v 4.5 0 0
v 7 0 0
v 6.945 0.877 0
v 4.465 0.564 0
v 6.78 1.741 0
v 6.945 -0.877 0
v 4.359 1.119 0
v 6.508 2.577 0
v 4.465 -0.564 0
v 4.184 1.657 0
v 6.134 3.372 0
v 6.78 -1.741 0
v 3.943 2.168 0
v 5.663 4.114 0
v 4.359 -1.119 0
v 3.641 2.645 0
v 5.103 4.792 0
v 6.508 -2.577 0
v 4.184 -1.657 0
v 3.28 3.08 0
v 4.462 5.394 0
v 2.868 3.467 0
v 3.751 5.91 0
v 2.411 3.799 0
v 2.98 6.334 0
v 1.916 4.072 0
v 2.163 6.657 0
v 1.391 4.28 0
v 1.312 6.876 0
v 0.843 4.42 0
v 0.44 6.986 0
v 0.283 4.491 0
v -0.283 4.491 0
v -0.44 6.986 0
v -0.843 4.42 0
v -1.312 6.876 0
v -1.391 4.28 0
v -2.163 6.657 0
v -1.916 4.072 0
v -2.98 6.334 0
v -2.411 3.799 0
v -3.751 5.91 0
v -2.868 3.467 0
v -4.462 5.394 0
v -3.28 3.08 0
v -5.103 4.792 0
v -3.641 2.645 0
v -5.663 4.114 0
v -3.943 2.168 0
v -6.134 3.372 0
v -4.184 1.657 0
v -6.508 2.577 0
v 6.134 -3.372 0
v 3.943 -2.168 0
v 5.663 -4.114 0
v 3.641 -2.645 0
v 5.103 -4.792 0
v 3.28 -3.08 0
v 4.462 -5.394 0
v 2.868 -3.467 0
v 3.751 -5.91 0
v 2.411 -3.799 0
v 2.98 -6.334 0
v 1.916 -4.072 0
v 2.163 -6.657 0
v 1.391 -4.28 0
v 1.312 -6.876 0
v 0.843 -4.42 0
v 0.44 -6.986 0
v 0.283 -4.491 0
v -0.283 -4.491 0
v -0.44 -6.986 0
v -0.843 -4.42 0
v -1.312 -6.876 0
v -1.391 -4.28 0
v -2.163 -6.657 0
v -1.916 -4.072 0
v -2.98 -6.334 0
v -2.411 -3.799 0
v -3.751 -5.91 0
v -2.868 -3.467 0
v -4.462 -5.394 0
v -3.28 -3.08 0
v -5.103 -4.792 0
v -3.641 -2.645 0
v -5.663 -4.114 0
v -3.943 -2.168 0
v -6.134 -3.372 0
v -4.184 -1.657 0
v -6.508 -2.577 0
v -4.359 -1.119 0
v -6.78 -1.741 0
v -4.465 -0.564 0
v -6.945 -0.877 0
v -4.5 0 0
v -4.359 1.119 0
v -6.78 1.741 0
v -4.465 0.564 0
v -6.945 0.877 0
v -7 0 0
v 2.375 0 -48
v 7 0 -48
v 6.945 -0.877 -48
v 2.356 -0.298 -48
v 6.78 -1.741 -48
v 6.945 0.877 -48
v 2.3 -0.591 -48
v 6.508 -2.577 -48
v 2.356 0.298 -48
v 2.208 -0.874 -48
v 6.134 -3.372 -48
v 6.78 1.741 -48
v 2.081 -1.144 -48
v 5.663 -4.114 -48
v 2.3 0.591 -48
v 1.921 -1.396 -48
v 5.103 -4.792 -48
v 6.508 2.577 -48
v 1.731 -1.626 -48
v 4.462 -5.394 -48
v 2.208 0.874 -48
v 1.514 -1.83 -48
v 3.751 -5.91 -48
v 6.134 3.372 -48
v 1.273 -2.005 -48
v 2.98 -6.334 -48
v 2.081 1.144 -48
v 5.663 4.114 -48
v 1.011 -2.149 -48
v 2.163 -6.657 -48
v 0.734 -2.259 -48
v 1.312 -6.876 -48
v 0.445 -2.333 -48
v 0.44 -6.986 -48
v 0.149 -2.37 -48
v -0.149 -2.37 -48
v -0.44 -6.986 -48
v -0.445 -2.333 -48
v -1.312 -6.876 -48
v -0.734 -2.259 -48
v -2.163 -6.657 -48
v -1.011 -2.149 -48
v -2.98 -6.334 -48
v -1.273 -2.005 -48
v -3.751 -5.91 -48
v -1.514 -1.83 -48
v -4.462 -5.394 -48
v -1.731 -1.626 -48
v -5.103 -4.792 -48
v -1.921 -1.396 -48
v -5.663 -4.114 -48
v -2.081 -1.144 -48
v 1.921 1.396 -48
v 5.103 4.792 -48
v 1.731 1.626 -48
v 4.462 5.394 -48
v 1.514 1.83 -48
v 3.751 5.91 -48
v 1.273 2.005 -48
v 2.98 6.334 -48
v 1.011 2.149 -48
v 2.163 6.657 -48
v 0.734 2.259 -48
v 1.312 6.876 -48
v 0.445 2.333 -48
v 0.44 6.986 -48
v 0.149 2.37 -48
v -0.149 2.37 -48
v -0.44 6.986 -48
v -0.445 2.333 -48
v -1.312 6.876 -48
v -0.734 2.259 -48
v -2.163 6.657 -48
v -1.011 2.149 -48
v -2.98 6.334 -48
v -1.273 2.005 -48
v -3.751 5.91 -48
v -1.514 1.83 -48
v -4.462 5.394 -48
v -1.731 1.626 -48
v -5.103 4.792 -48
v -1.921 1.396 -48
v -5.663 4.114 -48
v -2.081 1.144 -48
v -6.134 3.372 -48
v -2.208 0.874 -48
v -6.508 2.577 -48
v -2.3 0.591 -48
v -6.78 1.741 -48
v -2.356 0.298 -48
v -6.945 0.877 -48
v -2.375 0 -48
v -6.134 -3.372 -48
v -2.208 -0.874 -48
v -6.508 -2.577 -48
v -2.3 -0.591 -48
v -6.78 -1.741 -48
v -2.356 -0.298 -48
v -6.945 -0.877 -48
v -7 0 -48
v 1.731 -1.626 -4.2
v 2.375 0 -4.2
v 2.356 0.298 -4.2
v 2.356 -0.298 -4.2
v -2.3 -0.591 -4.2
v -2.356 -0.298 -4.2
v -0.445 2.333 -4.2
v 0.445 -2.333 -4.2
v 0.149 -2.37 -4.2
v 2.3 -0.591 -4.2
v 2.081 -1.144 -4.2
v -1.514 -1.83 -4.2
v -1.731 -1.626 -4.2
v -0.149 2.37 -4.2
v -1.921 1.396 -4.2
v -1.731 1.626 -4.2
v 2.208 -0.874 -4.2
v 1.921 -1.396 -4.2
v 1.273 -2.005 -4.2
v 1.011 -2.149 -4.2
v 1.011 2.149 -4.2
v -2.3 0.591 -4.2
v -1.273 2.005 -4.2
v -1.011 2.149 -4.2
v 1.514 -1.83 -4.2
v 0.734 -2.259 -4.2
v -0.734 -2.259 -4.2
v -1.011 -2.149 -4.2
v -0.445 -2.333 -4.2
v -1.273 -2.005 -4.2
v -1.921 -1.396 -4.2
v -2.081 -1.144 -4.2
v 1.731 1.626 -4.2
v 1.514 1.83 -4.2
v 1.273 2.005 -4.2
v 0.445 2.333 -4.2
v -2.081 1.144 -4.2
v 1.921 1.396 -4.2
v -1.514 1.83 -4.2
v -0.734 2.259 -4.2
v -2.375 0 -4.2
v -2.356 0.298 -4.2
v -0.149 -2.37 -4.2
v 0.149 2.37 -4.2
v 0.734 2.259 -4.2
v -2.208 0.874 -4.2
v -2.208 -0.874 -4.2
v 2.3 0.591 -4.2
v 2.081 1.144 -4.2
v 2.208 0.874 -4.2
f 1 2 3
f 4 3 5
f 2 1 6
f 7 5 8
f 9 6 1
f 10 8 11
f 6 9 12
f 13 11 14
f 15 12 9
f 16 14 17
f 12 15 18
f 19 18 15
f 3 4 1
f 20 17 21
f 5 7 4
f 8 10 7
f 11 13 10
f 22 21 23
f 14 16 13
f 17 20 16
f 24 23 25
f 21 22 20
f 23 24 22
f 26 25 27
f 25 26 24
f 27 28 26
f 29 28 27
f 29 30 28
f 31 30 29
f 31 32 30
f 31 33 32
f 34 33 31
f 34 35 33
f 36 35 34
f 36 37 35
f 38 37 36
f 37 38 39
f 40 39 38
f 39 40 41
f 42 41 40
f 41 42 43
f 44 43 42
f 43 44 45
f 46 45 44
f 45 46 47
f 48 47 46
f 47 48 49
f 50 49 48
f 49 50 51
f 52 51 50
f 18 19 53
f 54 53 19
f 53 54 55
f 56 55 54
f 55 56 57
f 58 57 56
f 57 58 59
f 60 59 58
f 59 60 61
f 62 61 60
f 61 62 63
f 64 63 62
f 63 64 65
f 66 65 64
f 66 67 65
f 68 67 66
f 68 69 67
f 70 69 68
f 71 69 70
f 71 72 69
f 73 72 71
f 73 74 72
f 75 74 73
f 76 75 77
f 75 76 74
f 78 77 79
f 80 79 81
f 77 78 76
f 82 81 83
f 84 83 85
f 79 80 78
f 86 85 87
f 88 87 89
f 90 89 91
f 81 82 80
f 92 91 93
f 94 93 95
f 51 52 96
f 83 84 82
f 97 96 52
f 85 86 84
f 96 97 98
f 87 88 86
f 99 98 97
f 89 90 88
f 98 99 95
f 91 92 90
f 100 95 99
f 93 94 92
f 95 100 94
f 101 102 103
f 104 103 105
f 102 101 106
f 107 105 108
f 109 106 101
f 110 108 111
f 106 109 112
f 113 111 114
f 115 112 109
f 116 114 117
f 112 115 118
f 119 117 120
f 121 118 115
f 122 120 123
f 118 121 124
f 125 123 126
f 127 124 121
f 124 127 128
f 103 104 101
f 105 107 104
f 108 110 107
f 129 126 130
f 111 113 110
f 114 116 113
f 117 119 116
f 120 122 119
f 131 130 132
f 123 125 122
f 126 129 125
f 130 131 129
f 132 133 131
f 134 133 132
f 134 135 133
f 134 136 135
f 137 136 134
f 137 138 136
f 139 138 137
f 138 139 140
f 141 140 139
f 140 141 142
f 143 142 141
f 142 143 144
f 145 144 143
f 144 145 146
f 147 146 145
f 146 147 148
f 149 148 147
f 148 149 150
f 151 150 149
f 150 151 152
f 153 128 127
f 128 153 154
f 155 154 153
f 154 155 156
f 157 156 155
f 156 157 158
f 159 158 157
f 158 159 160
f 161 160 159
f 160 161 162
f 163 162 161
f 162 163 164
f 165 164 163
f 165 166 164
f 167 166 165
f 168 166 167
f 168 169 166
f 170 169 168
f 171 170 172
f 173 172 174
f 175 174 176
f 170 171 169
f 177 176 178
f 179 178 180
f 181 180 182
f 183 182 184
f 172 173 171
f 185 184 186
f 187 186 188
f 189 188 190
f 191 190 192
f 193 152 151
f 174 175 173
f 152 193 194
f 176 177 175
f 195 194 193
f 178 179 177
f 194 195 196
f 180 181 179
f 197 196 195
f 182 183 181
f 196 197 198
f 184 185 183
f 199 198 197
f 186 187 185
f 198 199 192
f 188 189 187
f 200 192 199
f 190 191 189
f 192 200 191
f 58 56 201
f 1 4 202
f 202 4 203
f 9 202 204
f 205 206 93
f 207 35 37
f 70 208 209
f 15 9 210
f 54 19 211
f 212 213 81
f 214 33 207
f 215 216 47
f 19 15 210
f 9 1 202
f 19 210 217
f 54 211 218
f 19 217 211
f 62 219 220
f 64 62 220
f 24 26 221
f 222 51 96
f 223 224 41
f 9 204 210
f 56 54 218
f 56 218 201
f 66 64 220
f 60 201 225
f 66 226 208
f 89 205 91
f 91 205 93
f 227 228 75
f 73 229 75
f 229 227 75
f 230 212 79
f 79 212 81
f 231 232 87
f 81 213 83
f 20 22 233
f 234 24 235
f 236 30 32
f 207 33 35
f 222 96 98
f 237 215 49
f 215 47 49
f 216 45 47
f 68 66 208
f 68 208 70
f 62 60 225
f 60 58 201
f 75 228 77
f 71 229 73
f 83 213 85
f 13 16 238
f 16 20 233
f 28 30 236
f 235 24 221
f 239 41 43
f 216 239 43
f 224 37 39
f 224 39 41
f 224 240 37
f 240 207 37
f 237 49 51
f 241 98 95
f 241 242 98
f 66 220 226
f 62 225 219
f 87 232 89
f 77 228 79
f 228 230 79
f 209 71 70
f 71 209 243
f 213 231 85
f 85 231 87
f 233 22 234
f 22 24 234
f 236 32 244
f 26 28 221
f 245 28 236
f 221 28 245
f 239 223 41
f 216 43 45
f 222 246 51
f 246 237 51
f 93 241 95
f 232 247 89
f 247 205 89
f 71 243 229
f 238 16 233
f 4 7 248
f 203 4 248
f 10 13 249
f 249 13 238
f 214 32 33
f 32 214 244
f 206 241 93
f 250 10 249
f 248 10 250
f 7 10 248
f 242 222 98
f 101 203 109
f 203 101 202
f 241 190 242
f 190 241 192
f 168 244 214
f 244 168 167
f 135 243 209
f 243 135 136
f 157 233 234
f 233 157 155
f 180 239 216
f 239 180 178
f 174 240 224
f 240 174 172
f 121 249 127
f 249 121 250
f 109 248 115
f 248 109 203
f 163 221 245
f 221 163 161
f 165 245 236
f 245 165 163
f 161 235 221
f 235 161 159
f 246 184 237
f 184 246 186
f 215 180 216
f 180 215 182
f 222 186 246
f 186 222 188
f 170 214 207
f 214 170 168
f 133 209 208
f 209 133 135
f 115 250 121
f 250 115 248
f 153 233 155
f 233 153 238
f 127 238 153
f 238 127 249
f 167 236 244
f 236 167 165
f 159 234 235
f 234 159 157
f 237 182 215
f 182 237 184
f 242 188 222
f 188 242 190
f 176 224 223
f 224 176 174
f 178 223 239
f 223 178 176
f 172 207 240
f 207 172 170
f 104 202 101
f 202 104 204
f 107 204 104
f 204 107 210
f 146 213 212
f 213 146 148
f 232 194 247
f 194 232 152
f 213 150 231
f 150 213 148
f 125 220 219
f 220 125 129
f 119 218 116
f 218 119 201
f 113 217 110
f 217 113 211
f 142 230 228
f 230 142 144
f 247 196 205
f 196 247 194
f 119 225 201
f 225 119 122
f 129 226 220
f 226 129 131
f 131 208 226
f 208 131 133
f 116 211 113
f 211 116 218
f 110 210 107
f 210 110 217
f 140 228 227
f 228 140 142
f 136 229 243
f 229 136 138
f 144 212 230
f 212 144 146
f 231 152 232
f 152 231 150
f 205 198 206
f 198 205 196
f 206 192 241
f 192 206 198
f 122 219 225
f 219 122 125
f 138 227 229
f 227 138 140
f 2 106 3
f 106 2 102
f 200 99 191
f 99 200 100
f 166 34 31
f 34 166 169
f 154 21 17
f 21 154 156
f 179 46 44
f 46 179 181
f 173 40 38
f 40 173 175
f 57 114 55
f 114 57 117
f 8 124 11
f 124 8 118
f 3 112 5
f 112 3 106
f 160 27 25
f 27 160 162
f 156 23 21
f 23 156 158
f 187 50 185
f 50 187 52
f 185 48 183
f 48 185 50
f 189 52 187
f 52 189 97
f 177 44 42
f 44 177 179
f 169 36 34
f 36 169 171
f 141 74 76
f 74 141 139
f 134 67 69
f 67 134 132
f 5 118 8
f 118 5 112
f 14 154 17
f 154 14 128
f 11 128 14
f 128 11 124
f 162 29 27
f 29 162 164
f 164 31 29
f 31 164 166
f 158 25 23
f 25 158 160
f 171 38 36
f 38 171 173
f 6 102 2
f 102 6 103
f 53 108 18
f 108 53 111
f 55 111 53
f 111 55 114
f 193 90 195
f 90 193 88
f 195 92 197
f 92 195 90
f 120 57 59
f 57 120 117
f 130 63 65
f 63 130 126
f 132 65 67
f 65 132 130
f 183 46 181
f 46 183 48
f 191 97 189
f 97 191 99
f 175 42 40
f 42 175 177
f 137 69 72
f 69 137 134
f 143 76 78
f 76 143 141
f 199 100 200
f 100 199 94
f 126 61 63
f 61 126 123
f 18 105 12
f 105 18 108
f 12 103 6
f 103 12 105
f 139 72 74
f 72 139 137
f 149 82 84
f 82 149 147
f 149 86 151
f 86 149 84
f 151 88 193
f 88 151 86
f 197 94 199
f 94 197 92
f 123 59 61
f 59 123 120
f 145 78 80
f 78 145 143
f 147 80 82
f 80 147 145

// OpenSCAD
$fn = 50;


difference() {
	union() {
		translate(v = [0, 0, -48.0000000000]) {
			cylinder(h = 48, r = 7.0000000000);
		}
		cylinder(h = 0, r = 13.0000000000);
	}
	union() {
		translate(v = [0, 0, 0]) {
			rotate(a = [0, 0, 0]) {
				difference() {
					union() {
						#translate(v = [0, 0, -48.0000000000]) {
							cylinder(h = 48, r = 2.2500000000);
						}
						#translate(v = [0, 0, -4.2000000000]) {
							cylinder(h = 4.2000000000, r1 = 2.3750000000, r2 = 4.5000000000);
						}
						#translate(v = [0, 0, -48.0000000000]) {
							cylinder(h = 48, r = 2.3750000000);
						}
						#translate(v = [0, 0, -48.0000000000]) {
							cylinder(h = 48, r = 2.2500000000);
						}
					}
					union();
				}
			}
		}
	}
}
